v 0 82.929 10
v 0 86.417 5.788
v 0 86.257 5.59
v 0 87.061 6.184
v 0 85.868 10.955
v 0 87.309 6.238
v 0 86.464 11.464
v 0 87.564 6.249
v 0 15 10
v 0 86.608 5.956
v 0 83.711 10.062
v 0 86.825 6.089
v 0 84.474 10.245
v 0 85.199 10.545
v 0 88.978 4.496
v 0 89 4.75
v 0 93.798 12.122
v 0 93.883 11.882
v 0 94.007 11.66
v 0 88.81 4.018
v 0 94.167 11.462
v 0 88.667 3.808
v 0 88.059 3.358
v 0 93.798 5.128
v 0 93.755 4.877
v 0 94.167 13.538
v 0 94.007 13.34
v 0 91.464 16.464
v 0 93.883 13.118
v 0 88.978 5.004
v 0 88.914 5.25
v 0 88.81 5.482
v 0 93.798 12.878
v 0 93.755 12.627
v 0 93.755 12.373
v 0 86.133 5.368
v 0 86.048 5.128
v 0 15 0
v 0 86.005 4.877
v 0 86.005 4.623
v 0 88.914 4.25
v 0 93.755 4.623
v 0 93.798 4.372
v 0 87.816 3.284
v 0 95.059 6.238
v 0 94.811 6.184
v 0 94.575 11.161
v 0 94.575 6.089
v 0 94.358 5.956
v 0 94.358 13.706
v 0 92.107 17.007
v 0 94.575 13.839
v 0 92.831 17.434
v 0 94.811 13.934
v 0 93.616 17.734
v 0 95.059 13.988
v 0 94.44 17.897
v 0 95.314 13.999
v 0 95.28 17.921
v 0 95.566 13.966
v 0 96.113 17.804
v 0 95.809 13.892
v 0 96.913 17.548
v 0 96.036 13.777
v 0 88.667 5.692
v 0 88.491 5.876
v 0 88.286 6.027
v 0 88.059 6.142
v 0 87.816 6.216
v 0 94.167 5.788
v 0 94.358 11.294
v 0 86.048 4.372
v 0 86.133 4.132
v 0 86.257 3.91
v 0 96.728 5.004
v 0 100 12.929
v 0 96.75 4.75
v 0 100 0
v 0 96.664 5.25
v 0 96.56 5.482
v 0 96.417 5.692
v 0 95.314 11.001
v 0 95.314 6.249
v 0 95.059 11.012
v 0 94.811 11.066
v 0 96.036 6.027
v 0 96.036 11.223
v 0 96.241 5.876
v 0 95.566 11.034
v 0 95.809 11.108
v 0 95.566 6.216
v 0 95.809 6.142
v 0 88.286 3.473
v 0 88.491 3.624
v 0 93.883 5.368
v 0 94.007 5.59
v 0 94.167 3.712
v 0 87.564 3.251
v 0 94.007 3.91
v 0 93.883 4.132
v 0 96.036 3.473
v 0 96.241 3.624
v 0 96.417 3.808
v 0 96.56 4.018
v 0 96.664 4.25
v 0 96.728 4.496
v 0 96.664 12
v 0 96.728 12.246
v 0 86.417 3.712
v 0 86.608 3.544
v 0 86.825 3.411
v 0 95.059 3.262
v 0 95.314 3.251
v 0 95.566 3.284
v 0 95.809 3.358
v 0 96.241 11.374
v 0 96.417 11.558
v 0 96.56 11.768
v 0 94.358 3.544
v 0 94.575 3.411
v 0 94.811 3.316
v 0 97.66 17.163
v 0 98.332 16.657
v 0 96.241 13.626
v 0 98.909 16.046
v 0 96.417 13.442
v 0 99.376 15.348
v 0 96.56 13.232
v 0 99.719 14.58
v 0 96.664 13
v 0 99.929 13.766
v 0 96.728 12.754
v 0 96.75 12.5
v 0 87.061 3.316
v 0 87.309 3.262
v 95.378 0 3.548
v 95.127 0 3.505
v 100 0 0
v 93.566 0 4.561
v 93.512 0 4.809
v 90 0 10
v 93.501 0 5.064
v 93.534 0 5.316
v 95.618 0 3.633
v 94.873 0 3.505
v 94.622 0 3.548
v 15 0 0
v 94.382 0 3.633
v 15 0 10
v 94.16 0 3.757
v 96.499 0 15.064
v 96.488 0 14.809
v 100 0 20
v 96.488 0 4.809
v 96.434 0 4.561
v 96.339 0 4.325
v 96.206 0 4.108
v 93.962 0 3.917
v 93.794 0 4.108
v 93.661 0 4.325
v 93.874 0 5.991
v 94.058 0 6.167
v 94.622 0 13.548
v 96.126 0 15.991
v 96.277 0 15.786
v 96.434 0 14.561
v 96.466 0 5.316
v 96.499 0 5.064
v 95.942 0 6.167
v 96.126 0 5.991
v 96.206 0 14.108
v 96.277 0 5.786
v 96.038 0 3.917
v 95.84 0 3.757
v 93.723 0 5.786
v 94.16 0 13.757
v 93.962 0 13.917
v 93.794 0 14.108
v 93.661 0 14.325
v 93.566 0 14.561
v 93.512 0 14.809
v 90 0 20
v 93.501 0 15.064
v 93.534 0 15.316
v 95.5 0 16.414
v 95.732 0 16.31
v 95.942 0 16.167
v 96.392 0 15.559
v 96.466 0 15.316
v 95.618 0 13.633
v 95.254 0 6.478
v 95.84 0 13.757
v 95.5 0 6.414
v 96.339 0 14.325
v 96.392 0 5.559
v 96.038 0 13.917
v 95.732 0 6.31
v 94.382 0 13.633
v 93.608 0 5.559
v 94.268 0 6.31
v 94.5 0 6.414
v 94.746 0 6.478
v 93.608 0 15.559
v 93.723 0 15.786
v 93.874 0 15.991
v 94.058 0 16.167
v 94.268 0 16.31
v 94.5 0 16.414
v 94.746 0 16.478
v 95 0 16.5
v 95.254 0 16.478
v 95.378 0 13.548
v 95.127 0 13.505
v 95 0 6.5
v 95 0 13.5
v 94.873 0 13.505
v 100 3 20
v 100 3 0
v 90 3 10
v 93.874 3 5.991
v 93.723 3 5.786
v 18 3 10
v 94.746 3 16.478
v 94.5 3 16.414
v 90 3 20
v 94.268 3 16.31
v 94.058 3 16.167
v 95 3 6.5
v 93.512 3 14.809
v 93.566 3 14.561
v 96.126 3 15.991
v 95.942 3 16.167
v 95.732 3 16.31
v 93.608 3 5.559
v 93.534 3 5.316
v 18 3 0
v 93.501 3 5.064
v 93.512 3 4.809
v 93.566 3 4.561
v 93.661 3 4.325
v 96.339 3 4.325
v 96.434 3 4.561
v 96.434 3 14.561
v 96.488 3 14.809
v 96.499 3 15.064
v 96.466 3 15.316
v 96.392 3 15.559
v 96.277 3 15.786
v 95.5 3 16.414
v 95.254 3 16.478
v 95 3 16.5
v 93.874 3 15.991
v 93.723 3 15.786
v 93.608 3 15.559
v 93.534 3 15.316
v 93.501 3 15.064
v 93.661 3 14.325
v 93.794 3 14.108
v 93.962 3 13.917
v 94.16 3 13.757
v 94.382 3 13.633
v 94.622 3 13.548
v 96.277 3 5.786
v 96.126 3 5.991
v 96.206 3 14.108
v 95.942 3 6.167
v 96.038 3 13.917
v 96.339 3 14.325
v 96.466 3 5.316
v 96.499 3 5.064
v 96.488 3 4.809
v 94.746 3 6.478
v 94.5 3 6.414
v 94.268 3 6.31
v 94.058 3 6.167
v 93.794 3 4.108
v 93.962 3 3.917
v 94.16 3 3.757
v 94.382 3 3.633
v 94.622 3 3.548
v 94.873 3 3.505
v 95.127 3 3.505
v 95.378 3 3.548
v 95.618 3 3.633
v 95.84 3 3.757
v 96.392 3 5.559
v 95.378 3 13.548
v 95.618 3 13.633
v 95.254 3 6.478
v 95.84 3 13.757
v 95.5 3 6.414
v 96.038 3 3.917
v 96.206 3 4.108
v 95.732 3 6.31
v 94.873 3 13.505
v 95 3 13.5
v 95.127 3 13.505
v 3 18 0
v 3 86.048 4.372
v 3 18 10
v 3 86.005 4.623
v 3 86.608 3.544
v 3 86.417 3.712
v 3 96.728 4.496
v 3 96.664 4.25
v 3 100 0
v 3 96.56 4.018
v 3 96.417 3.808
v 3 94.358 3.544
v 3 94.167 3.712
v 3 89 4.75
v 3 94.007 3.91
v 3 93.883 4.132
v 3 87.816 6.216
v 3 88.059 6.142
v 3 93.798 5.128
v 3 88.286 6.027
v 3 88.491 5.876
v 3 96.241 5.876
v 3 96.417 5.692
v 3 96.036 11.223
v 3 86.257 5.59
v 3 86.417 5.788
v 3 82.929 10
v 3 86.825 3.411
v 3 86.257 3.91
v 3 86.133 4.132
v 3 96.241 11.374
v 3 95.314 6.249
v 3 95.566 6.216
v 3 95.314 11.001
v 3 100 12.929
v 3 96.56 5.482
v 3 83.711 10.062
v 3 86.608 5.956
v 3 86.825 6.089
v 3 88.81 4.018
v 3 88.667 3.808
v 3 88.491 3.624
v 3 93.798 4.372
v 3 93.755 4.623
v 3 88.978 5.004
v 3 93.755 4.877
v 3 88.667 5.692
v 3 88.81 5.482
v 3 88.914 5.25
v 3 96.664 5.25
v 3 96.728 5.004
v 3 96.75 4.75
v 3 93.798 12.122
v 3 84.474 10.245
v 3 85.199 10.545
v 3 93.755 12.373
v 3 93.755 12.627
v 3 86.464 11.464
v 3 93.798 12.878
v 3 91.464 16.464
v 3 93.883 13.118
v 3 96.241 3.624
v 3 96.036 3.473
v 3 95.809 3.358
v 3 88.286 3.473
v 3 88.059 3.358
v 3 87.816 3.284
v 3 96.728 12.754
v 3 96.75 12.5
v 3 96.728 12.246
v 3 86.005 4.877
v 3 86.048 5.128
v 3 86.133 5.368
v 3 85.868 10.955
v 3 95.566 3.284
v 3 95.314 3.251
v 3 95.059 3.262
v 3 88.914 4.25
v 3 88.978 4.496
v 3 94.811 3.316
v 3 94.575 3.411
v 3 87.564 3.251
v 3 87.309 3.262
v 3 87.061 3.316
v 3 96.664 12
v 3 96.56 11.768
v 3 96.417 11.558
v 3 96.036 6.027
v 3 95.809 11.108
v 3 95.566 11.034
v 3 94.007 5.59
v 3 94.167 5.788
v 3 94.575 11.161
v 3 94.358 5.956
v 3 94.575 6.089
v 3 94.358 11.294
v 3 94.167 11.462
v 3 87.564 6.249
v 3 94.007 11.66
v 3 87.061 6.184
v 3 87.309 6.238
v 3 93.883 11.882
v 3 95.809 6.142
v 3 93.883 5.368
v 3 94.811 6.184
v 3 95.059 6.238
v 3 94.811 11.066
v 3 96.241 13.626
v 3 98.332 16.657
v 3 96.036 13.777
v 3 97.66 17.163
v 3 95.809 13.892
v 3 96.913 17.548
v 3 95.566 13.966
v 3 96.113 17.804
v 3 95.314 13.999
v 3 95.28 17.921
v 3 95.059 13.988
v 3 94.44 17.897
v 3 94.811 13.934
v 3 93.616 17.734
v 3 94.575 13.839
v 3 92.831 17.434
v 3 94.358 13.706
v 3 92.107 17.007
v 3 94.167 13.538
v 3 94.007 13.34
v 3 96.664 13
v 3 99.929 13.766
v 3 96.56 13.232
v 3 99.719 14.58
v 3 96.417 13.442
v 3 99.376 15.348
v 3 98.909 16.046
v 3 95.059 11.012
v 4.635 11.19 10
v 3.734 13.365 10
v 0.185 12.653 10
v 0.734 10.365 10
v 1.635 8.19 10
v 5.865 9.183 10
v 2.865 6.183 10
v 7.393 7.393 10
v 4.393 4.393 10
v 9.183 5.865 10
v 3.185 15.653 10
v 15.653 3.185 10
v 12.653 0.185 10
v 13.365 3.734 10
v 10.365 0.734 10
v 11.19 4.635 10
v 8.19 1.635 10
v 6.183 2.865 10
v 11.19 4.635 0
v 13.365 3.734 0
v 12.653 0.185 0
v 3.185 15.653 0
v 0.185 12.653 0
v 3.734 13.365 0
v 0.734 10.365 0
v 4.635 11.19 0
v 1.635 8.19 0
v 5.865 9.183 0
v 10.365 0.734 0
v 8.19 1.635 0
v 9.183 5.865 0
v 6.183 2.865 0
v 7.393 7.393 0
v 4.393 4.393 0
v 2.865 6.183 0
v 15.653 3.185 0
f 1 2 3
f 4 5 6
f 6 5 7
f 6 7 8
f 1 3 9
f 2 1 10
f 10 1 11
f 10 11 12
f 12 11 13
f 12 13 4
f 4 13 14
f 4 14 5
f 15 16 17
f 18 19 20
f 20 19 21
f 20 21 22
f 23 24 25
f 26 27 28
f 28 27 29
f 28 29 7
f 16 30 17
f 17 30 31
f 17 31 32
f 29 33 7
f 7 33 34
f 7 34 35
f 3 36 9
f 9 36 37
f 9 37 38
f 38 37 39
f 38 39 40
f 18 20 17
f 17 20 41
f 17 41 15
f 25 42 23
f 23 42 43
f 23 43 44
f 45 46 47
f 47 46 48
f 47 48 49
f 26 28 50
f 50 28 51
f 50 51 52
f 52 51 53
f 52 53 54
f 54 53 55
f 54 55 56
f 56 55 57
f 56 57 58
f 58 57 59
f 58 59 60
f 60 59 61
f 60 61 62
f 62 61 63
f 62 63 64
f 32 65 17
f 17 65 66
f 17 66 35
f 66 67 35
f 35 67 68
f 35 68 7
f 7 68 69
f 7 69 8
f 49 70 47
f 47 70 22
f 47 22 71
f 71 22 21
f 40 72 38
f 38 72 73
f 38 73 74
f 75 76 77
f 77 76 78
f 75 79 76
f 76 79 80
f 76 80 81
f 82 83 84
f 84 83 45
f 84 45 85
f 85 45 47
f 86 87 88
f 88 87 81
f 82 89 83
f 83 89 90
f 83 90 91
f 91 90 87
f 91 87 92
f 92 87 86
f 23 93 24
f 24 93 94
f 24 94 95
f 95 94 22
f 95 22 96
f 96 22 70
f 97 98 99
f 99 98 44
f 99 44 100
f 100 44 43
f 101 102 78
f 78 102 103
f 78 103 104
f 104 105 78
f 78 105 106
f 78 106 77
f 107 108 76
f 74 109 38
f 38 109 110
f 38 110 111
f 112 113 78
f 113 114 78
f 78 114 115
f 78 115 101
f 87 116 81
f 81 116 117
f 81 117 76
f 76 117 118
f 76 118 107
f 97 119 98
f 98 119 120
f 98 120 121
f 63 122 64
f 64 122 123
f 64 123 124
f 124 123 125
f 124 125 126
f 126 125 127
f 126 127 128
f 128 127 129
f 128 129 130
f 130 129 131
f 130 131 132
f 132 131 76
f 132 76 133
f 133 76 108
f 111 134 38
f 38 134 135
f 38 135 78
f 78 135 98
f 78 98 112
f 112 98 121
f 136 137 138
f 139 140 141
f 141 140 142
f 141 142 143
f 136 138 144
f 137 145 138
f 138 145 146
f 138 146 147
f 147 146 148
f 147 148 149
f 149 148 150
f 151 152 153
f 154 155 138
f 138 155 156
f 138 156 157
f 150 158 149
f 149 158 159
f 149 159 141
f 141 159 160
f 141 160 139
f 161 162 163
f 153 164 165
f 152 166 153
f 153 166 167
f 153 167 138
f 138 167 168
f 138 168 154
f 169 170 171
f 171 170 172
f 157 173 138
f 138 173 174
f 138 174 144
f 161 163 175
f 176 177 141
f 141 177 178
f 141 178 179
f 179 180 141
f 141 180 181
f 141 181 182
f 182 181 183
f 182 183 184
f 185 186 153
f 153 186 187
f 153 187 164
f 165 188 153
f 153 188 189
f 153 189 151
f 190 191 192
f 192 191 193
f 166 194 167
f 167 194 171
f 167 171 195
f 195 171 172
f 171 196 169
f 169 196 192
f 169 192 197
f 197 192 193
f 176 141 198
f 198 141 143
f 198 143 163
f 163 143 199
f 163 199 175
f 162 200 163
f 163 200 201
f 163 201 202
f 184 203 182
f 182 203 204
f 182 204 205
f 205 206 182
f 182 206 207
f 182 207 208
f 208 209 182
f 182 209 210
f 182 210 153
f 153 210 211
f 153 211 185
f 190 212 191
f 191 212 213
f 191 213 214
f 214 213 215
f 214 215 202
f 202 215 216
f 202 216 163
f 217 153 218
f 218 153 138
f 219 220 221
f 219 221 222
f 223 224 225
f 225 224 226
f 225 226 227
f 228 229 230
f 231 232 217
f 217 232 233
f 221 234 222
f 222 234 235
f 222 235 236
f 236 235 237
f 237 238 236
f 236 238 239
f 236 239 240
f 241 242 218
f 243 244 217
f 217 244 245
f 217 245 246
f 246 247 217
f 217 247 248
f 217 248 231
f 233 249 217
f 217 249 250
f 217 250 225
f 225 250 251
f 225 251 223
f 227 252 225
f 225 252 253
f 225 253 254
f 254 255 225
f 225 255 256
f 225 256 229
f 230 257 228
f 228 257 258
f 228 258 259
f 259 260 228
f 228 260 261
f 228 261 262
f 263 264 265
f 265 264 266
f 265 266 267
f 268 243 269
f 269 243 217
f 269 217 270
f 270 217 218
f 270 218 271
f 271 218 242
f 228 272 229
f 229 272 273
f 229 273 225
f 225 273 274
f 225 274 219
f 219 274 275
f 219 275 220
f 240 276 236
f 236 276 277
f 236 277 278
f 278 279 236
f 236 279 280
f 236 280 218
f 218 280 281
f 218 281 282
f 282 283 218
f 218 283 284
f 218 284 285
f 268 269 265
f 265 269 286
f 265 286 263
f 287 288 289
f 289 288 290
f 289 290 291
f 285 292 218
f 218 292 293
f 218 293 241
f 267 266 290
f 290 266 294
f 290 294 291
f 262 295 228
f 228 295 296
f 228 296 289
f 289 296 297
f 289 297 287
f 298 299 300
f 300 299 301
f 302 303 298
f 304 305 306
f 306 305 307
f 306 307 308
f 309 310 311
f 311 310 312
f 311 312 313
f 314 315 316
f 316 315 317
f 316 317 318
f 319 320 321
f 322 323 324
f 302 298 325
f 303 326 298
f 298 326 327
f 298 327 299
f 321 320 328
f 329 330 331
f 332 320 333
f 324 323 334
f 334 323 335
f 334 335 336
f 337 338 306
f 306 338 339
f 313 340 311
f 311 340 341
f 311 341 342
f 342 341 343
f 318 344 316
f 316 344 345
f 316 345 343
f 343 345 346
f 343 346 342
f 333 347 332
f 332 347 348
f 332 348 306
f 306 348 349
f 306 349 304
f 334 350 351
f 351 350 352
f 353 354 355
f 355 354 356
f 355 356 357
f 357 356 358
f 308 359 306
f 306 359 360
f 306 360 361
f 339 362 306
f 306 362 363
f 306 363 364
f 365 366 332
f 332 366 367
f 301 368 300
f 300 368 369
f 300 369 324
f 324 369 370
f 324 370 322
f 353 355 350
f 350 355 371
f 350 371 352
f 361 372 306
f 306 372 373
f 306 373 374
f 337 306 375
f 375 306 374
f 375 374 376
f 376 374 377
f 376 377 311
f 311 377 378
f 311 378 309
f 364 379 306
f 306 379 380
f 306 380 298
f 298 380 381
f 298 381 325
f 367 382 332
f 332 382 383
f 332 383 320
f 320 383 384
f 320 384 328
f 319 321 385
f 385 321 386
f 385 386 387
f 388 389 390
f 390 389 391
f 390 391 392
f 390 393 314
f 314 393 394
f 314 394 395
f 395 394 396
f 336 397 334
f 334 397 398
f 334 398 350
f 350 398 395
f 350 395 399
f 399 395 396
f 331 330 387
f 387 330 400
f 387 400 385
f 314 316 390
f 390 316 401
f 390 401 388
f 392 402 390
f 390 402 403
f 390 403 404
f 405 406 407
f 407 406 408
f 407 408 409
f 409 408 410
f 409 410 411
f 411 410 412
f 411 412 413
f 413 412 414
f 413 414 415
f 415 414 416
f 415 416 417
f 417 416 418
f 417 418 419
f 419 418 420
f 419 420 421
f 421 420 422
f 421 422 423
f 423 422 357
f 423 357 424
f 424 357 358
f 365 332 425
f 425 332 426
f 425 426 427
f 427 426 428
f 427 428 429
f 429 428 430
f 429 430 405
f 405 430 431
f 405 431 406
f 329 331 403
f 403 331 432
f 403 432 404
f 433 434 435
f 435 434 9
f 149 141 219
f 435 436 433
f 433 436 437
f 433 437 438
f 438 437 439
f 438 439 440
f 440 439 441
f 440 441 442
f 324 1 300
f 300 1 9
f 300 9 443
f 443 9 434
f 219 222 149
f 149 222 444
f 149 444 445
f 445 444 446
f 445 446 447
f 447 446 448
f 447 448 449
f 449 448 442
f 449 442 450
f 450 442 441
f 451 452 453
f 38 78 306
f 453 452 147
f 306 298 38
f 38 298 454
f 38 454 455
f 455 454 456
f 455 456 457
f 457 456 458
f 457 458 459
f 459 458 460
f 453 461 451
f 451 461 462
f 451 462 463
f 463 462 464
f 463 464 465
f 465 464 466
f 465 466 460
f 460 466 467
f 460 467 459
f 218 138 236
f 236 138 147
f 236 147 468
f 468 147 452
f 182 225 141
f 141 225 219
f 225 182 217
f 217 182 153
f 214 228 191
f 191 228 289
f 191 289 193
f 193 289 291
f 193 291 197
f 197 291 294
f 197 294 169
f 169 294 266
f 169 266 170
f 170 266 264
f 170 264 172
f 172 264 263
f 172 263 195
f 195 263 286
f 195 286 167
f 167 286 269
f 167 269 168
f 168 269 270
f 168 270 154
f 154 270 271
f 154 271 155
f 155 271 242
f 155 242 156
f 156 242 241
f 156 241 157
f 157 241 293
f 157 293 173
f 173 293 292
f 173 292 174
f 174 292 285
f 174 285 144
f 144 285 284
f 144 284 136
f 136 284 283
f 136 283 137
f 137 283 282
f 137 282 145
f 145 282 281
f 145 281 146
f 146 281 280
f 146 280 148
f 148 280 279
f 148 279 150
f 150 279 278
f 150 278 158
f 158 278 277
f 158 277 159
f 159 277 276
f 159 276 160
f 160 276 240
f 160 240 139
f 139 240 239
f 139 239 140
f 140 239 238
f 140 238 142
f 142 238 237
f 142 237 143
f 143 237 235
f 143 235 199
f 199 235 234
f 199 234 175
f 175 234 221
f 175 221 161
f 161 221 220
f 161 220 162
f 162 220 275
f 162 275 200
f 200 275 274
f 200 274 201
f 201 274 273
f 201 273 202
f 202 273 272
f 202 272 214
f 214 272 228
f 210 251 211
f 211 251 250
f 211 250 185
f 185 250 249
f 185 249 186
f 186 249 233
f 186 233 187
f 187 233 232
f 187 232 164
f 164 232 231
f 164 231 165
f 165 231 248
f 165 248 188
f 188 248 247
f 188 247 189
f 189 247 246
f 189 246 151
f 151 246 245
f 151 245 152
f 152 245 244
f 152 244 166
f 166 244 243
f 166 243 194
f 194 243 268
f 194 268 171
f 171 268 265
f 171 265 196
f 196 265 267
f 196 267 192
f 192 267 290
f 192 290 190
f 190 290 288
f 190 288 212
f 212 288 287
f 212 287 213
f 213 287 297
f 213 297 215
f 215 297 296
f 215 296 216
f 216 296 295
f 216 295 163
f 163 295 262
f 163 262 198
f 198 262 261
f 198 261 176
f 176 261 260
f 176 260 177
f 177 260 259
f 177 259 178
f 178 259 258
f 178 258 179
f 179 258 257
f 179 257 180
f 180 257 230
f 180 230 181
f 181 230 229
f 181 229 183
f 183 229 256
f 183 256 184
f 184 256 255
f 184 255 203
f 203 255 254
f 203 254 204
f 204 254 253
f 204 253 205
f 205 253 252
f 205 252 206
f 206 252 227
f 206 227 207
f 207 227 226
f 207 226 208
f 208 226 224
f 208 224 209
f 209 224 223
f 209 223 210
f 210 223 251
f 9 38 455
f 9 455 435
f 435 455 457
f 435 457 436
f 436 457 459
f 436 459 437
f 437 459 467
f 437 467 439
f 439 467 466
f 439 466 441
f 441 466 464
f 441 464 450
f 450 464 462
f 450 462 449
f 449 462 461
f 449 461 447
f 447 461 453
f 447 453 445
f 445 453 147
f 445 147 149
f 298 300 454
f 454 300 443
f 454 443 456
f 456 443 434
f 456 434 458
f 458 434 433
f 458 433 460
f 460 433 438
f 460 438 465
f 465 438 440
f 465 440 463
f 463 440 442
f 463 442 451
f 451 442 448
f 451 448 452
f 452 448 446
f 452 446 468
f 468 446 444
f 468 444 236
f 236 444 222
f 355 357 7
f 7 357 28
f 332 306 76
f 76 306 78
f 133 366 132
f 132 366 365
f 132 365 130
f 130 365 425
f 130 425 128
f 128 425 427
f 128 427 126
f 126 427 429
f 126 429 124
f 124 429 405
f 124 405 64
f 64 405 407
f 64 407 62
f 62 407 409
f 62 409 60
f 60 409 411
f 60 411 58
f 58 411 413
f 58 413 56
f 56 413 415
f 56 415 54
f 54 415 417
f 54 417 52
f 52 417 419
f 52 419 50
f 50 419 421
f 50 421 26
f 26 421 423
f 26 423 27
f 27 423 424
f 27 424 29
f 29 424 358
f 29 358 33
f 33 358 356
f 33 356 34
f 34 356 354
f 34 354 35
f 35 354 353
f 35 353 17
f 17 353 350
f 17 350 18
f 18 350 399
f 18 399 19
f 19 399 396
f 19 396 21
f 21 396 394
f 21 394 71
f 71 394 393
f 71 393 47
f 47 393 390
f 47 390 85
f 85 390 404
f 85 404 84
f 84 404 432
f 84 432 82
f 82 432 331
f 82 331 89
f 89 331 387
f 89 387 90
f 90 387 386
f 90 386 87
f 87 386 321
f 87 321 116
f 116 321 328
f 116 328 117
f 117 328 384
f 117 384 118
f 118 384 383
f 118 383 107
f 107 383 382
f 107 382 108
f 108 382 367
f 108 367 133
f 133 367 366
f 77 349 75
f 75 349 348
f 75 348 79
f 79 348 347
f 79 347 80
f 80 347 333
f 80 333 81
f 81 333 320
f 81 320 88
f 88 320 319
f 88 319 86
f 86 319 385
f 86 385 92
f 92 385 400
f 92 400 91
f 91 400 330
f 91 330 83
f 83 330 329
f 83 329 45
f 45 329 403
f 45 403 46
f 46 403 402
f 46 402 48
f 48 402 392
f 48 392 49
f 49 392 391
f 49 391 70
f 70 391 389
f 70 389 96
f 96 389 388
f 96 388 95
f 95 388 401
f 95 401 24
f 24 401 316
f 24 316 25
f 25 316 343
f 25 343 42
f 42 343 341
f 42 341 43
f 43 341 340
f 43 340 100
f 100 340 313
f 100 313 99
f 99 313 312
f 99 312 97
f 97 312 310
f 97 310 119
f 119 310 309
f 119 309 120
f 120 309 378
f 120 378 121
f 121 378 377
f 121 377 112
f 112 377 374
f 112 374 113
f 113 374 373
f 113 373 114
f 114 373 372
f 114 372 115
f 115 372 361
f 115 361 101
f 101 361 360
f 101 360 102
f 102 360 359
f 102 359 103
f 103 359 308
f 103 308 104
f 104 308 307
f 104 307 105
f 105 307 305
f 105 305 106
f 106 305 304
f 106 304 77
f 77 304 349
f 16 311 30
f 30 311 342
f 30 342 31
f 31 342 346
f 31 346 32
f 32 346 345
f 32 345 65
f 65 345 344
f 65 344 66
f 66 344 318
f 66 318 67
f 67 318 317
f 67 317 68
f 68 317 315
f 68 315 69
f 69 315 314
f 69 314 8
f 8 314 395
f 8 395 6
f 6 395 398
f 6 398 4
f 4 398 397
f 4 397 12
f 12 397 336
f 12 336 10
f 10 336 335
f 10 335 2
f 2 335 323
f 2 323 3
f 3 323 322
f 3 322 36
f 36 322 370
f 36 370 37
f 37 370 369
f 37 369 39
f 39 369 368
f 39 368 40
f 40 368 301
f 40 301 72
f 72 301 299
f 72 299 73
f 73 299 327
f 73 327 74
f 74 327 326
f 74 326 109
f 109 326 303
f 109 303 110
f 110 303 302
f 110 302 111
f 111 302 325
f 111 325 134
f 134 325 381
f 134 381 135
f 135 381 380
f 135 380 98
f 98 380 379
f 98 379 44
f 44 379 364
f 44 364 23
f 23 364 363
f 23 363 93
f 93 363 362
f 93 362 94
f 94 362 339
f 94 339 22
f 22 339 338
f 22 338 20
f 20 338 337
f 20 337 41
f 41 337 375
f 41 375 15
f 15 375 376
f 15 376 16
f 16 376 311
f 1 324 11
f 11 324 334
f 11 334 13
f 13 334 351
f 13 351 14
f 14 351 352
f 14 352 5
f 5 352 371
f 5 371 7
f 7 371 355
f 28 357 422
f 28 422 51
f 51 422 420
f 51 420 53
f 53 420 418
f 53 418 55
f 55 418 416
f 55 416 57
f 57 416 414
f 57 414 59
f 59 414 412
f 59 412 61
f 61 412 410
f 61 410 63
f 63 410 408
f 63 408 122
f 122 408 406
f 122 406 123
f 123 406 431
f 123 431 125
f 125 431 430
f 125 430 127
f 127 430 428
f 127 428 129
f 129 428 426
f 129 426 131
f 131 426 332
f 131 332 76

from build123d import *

# Parameters (mm, degrees)
BOSS_EXTRUDE1_DEPTH = 10
SKETCH2_W           = 10
SKETCH2_H           = 3
BOSS_EXTRUDE2_DEPTH = 10
SKETCH3_R           = 1.5
CUT_EXTRUDE1_DEPTH  = 3
FILLET1_R           = 15
SKETCH4_R           = 1.5
BOSS_EXTRUDE3_DEPTH = 3
FILLET2_R           = 5


with BuildPart() as part:
    # Sketch1 → Boss-Extrude1 (new body)
    with BuildSketch(Plane.XY):
        Polygon((0, 0), (100, 0), (100, 3), (3, 3), (3, 85), (0, 85), align=None)
    extrude(amount=BOSS_EXTRUDE1_DEPTH)

    # Sketch2 → Boss-Extrude2 (add)
    with BuildSketch(Plane.XY.offset(10)):
        with Locations((95, 1.5)):
            Rectangle(SKETCH2_W, SKETCH2_H)
    extrude(amount=BOSS_EXTRUDE2_DEPTH)

    # Sketch3 → Cut-Extrude1 (cut)
    with BuildSketch(Plane(origin=(0, 3, 0), x_dir=(1, 0, 0), z_dir=(0, 1, 0))):
        with Locations(Location((95, -5, 0), (0, 0, 270))):
            Circle(SKETCH3_R)
        with Locations(Location((95, -15, 0), (0, 0, 90))):
            Circle(SKETCH3_R)
    extrude(amount=-CUT_EXTRUDE1_DEPTH, mode=Mode.SUBTRACT)

    # Fillet1
    fillet1_edges = [part.edges().sort_by_distance(p)[0] for p in [
        (3, 3, 5),
        (0, 0, 5),
    ]]
    fillet(fillet1_edges, radius=FILLET1_R)

    # Sketch4 → Boss-Extrude3 (add)
    with BuildSketch(Plane(origin=(3, 0, 0), x_dir=(0, 0, -1), z_dir=(1, 0, 0))):
        Polygon((0, 100), (-25, 100), (0, 75), align=None)
        with Locations(Location((-12.5, 95.25, 0), (0, 0, 90))):
            Circle(SKETCH4_R, mode=Mode.SUBTRACT)
        with Locations(Location((-4.75, 95.25, 0), (0, 0, 90))):
            Circle(SKETCH4_R, mode=Mode.SUBTRACT)
        with Locations(Location((-4.75, 87.5, 0), (0, 0, 90))):
            Circle(SKETCH4_R, mode=Mode.SUBTRACT)
    extrude(amount=-BOSS_EXTRUDE3_DEPTH)

    # Fillet2
    fillet2_edges = [part.edges().sort_by_distance(p)[0] for p in [
        (1.5, 85, 10),
        (1.5, 100, 25),
    ]]
    fillet(fillet2_edges, radius=FILLET2_R)


solid = part.part
